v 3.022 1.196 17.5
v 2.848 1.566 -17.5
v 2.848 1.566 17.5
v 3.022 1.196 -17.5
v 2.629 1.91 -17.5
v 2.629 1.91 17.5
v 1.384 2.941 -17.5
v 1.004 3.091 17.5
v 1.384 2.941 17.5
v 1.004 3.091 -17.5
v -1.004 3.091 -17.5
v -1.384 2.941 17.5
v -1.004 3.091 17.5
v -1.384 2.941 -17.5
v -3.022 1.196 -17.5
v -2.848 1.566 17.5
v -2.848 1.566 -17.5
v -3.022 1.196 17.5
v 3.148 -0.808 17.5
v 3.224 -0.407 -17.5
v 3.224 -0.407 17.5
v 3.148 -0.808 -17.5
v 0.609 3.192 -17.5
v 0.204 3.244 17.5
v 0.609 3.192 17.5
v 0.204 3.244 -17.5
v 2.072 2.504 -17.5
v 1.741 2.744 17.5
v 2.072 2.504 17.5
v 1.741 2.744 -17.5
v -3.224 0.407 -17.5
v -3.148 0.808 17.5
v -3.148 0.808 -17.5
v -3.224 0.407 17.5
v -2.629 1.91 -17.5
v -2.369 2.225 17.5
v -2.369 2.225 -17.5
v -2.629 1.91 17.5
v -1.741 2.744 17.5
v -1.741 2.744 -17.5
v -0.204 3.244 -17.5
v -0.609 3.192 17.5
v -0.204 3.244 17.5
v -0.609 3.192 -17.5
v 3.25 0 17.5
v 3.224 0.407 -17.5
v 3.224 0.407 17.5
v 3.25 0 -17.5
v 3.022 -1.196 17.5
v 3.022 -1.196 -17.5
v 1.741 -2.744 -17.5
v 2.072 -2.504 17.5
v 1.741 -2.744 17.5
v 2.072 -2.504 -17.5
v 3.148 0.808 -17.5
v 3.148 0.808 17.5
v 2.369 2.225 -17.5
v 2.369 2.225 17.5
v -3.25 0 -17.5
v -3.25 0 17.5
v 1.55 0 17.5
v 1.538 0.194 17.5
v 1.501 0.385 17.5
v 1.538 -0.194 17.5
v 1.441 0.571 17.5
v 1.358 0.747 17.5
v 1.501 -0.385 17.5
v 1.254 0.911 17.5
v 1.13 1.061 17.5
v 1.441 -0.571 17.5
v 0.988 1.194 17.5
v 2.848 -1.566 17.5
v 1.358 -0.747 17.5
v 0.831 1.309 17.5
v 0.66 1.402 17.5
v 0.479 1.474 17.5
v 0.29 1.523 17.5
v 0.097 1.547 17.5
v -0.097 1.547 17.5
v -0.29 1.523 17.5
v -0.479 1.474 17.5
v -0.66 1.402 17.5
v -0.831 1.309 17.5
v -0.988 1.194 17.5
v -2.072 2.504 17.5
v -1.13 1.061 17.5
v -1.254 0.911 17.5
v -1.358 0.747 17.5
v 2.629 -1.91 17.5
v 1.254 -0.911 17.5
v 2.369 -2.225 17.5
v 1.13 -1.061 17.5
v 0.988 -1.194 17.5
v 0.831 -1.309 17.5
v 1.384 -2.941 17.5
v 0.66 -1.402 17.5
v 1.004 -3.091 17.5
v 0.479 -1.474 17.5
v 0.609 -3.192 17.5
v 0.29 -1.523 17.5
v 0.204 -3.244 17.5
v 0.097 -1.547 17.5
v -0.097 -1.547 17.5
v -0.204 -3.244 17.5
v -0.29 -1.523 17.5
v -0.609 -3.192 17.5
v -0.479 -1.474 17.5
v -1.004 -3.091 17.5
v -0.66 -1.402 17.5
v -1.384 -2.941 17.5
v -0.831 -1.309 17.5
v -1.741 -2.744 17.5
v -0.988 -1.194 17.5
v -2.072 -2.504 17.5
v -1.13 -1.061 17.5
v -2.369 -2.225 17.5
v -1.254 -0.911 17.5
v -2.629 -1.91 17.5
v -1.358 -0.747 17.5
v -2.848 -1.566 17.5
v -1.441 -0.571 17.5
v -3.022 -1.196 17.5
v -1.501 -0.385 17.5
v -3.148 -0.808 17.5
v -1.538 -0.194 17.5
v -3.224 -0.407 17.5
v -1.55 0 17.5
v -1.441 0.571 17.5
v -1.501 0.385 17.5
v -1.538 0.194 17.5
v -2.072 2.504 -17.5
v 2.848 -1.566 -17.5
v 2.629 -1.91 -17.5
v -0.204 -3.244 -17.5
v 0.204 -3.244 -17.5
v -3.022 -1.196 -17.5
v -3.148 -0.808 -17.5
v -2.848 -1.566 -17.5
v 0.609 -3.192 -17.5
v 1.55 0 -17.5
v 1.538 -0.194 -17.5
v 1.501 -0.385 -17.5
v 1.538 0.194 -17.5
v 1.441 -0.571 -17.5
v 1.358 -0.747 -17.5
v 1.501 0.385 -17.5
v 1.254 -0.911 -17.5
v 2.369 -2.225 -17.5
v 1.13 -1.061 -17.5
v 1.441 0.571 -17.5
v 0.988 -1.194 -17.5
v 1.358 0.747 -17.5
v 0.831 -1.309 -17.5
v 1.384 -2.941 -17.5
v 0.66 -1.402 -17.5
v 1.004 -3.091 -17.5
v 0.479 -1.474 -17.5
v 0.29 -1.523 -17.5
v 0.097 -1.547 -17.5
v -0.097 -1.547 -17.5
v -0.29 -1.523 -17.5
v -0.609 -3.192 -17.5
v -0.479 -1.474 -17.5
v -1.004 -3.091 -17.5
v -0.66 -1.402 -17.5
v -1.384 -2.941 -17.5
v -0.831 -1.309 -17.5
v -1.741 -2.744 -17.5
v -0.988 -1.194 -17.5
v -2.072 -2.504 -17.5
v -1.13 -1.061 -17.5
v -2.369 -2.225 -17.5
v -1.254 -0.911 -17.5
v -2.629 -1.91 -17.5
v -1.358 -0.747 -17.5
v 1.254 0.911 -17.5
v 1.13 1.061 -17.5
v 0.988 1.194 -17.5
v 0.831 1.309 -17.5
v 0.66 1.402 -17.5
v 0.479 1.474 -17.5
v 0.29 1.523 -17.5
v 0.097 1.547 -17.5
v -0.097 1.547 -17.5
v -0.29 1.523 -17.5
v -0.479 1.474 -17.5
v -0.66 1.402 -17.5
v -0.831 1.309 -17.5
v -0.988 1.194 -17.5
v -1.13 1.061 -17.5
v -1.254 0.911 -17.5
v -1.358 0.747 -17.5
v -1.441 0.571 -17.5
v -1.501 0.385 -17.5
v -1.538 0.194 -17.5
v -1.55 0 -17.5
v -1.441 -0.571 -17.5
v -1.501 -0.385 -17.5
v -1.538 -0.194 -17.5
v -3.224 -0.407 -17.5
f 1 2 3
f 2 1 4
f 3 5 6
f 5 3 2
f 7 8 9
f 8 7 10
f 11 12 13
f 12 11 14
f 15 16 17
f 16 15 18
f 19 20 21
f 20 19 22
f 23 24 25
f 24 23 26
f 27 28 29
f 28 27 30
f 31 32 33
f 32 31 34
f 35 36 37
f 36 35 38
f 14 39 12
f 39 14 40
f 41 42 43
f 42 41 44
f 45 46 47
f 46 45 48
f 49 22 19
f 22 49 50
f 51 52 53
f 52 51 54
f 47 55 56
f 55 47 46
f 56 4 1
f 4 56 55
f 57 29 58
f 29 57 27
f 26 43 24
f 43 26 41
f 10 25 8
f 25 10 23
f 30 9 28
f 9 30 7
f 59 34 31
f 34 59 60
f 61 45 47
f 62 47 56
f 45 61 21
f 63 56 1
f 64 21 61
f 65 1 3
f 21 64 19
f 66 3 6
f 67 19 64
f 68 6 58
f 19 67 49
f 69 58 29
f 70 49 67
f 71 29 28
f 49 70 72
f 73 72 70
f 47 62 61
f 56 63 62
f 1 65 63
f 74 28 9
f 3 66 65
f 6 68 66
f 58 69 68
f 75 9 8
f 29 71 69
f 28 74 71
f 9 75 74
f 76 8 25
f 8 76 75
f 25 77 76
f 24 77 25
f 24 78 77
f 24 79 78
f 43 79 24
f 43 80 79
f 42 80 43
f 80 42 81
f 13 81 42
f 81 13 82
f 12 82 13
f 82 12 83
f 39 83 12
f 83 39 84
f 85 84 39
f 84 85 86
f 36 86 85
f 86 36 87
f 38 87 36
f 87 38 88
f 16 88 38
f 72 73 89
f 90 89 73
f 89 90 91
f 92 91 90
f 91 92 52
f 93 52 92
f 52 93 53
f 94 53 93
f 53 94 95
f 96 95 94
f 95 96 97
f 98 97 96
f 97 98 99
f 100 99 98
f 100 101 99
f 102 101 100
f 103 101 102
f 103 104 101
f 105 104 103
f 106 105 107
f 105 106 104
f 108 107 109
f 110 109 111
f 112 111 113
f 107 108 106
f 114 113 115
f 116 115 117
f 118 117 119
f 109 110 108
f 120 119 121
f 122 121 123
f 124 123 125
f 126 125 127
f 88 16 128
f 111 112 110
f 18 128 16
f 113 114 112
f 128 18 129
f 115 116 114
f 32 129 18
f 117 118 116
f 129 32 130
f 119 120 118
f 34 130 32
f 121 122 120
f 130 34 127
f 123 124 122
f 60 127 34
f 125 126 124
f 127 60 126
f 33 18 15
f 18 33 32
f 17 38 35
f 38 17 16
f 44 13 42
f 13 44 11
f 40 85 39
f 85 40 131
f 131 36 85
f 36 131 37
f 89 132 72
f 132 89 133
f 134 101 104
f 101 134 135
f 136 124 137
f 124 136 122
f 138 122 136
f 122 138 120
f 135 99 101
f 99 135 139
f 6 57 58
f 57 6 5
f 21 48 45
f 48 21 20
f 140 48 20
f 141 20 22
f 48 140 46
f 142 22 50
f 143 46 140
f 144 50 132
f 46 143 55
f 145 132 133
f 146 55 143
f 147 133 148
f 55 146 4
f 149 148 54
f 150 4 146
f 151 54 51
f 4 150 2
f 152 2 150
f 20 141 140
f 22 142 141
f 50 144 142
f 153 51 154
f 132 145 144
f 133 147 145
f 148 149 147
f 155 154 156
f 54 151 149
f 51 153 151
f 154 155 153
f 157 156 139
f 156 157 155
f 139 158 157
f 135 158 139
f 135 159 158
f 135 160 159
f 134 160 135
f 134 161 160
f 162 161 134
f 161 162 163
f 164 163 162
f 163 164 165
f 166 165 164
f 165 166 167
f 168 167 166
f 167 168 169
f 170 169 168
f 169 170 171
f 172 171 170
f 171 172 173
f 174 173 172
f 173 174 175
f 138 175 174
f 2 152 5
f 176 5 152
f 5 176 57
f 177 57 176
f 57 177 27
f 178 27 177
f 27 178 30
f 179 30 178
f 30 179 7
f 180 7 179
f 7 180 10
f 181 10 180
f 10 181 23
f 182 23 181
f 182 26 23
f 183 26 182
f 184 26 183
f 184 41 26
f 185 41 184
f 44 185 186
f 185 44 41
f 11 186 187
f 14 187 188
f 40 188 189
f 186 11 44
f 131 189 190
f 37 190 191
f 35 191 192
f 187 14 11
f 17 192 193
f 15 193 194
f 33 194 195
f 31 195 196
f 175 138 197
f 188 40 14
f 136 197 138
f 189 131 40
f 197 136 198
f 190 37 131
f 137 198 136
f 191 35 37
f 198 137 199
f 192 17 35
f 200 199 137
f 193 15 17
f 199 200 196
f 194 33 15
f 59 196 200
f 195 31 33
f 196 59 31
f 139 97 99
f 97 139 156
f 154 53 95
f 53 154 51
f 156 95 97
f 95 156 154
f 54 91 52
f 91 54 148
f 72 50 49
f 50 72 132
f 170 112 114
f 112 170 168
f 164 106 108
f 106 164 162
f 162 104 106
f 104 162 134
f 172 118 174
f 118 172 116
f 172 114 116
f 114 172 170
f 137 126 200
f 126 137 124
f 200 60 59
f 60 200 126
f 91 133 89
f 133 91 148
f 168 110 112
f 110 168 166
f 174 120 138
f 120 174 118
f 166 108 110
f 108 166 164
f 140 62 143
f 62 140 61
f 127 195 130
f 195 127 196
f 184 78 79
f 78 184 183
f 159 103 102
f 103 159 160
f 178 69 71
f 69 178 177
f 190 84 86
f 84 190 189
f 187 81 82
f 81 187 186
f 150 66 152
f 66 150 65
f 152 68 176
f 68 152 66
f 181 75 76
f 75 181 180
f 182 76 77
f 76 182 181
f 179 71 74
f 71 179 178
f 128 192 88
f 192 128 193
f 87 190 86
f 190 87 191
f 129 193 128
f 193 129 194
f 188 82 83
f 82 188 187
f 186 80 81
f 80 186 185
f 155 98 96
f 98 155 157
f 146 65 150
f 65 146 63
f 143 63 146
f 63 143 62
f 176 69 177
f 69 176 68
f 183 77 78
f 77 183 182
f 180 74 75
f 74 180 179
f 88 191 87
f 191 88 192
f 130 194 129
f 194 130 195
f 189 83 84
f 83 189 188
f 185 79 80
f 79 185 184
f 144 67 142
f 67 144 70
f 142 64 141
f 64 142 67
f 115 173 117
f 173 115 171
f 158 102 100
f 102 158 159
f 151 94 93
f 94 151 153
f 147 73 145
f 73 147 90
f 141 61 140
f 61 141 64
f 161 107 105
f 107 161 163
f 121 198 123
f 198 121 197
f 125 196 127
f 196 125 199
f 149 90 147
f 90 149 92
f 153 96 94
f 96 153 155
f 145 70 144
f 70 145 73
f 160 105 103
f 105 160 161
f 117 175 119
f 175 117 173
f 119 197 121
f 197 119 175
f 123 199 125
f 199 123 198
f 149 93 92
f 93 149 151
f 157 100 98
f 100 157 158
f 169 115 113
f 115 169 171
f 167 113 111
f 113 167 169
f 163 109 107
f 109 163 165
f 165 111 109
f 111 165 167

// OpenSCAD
$fn = 50;


difference() {
	union() {
		translate(v = [0, 0, -17.5000000000]) {
			cylinder(h = 35, r = 3.2500000000);
		}
	}
	union() {
		translate(v = [0, 0, -100.0000000000]) {
			cylinder(h = 200, r = 1.5500000000);
		}
	}
}
